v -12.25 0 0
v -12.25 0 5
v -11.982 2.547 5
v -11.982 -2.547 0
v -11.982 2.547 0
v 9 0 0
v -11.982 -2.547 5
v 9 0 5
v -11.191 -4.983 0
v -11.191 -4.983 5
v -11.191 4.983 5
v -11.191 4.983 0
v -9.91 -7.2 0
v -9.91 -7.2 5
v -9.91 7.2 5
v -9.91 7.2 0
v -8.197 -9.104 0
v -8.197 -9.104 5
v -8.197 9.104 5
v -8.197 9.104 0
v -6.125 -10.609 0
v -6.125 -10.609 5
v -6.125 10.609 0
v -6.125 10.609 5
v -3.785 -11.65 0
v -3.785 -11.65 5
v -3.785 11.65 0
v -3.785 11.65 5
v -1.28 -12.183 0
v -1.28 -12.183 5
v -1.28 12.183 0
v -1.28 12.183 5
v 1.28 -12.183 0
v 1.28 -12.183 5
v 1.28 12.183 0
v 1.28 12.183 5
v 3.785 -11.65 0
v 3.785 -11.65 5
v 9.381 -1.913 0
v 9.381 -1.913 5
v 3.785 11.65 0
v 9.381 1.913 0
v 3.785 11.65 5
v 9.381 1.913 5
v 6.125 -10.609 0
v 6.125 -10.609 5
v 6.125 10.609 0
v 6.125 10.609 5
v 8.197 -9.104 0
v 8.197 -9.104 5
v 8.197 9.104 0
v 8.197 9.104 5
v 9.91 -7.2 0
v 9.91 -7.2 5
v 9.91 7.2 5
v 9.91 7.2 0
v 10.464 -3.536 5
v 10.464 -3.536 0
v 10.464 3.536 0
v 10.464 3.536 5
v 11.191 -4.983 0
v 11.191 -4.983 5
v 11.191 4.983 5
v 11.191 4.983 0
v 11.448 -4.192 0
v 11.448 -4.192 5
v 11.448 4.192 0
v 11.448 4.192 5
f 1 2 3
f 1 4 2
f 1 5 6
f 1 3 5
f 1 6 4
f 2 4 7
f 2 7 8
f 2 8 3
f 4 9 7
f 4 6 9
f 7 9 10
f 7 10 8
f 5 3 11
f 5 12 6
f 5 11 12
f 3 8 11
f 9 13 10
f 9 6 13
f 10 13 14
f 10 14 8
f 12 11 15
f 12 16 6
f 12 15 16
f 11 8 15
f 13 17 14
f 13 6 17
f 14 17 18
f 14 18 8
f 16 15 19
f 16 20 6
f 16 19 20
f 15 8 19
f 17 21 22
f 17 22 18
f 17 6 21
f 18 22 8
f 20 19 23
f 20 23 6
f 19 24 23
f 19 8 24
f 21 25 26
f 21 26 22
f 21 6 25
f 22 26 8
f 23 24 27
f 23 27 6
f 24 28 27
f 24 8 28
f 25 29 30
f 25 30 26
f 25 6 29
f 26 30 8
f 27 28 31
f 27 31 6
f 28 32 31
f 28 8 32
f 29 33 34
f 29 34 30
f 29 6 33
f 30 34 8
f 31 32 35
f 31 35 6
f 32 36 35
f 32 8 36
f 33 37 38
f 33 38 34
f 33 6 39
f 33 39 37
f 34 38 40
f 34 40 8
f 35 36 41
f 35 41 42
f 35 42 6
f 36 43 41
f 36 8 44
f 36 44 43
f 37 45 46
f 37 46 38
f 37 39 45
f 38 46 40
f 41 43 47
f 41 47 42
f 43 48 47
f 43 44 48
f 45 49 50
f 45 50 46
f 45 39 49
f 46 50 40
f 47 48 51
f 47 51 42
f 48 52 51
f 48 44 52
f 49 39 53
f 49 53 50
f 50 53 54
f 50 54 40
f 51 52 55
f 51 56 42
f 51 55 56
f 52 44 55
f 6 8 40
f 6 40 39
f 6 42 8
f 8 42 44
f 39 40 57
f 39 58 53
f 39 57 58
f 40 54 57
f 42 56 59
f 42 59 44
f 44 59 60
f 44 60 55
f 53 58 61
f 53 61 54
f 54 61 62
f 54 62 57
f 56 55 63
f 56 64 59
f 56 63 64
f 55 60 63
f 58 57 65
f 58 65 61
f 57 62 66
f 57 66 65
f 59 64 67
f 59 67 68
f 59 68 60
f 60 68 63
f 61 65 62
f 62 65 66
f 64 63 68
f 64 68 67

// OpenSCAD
difference() {
    cylinder(h=5, d=24.5);
    translate([14,0,0])
    cylinder(h=5, d=10);
};
